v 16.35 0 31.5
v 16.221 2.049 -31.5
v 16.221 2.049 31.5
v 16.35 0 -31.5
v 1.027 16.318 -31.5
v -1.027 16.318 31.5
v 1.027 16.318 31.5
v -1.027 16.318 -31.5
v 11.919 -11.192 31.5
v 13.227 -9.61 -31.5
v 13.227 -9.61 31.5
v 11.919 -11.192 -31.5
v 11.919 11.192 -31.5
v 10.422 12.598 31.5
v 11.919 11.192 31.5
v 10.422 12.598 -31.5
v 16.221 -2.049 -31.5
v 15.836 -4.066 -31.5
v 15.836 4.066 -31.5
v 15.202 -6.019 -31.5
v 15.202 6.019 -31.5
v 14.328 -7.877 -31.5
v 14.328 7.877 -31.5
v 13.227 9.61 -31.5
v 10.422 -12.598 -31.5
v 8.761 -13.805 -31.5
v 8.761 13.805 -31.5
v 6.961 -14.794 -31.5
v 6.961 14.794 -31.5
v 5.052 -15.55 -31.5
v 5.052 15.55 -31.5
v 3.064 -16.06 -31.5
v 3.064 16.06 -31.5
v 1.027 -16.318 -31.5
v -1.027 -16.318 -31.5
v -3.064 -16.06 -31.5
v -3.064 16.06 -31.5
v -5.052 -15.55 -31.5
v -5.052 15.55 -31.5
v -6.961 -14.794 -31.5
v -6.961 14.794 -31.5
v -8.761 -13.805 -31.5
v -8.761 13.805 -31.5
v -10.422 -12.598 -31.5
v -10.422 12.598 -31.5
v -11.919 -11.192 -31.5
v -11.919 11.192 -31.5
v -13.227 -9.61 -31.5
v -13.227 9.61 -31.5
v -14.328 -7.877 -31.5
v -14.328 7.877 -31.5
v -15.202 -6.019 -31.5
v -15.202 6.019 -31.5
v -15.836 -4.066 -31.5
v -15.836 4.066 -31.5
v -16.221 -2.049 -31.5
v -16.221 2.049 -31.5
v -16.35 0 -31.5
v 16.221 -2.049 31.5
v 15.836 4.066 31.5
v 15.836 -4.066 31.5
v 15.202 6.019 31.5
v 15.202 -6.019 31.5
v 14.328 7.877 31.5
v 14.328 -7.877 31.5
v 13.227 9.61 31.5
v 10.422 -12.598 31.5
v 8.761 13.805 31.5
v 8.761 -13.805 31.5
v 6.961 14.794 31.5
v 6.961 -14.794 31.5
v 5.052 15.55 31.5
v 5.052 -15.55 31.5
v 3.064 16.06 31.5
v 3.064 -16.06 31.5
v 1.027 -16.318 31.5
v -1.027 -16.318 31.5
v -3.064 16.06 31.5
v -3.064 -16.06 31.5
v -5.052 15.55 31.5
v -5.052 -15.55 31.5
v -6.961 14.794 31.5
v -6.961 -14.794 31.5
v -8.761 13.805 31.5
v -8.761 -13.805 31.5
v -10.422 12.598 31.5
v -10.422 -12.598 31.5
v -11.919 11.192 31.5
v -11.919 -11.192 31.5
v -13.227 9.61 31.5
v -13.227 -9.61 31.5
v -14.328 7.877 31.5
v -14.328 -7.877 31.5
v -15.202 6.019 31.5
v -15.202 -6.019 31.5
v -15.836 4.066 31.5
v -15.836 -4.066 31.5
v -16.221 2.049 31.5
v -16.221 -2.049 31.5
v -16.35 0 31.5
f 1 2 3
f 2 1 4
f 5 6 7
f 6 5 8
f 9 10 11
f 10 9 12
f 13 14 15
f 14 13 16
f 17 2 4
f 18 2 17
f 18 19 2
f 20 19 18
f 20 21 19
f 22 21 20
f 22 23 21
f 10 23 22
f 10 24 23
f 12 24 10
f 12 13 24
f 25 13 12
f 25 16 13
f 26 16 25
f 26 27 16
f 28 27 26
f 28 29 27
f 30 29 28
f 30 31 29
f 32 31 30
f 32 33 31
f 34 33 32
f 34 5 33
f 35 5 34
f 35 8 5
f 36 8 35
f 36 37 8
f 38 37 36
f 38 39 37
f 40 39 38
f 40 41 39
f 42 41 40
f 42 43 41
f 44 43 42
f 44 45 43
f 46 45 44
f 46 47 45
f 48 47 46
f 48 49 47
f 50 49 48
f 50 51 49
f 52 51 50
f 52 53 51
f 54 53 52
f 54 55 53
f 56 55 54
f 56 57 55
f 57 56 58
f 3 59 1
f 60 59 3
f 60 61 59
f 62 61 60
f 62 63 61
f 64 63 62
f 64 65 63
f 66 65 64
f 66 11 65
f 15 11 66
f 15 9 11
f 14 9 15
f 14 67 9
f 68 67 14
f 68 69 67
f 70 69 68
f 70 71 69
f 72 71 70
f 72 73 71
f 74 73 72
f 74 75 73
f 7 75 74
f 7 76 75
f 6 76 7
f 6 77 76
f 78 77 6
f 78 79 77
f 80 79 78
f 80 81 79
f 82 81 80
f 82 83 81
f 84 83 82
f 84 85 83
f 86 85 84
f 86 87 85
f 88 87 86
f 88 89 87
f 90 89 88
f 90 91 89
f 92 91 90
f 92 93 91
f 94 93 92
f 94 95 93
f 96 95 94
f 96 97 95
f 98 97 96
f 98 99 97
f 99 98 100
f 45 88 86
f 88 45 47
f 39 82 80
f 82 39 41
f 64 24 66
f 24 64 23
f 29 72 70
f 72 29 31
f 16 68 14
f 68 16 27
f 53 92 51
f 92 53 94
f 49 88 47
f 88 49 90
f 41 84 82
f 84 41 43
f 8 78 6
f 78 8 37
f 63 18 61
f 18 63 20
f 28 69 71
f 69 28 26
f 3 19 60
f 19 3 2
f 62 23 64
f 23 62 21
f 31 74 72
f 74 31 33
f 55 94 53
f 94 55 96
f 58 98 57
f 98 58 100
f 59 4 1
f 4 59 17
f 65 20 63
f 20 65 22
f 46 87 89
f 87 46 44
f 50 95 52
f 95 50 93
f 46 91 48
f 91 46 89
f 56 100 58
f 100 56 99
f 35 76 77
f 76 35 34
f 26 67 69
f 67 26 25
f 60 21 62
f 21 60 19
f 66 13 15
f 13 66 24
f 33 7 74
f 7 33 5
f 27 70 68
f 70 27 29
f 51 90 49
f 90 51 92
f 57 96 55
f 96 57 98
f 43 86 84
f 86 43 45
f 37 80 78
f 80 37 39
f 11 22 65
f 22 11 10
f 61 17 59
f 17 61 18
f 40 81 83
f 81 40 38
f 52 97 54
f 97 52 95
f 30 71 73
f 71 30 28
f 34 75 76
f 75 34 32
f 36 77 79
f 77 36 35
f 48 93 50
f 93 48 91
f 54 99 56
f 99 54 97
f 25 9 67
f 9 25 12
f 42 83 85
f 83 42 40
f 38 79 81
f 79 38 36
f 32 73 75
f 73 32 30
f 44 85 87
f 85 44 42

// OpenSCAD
$fn = 50;


difference() {
	union() {
		translate(v = [0, 0, -31.5000000000]) {
			cylinder(h = 63, r = 16.3500000000);
		}
	}
	union() {
		translate(v = [0, 0, -100.0000000000]) {
			cylinder(h = 200, r = 0);
		}
	}
}
